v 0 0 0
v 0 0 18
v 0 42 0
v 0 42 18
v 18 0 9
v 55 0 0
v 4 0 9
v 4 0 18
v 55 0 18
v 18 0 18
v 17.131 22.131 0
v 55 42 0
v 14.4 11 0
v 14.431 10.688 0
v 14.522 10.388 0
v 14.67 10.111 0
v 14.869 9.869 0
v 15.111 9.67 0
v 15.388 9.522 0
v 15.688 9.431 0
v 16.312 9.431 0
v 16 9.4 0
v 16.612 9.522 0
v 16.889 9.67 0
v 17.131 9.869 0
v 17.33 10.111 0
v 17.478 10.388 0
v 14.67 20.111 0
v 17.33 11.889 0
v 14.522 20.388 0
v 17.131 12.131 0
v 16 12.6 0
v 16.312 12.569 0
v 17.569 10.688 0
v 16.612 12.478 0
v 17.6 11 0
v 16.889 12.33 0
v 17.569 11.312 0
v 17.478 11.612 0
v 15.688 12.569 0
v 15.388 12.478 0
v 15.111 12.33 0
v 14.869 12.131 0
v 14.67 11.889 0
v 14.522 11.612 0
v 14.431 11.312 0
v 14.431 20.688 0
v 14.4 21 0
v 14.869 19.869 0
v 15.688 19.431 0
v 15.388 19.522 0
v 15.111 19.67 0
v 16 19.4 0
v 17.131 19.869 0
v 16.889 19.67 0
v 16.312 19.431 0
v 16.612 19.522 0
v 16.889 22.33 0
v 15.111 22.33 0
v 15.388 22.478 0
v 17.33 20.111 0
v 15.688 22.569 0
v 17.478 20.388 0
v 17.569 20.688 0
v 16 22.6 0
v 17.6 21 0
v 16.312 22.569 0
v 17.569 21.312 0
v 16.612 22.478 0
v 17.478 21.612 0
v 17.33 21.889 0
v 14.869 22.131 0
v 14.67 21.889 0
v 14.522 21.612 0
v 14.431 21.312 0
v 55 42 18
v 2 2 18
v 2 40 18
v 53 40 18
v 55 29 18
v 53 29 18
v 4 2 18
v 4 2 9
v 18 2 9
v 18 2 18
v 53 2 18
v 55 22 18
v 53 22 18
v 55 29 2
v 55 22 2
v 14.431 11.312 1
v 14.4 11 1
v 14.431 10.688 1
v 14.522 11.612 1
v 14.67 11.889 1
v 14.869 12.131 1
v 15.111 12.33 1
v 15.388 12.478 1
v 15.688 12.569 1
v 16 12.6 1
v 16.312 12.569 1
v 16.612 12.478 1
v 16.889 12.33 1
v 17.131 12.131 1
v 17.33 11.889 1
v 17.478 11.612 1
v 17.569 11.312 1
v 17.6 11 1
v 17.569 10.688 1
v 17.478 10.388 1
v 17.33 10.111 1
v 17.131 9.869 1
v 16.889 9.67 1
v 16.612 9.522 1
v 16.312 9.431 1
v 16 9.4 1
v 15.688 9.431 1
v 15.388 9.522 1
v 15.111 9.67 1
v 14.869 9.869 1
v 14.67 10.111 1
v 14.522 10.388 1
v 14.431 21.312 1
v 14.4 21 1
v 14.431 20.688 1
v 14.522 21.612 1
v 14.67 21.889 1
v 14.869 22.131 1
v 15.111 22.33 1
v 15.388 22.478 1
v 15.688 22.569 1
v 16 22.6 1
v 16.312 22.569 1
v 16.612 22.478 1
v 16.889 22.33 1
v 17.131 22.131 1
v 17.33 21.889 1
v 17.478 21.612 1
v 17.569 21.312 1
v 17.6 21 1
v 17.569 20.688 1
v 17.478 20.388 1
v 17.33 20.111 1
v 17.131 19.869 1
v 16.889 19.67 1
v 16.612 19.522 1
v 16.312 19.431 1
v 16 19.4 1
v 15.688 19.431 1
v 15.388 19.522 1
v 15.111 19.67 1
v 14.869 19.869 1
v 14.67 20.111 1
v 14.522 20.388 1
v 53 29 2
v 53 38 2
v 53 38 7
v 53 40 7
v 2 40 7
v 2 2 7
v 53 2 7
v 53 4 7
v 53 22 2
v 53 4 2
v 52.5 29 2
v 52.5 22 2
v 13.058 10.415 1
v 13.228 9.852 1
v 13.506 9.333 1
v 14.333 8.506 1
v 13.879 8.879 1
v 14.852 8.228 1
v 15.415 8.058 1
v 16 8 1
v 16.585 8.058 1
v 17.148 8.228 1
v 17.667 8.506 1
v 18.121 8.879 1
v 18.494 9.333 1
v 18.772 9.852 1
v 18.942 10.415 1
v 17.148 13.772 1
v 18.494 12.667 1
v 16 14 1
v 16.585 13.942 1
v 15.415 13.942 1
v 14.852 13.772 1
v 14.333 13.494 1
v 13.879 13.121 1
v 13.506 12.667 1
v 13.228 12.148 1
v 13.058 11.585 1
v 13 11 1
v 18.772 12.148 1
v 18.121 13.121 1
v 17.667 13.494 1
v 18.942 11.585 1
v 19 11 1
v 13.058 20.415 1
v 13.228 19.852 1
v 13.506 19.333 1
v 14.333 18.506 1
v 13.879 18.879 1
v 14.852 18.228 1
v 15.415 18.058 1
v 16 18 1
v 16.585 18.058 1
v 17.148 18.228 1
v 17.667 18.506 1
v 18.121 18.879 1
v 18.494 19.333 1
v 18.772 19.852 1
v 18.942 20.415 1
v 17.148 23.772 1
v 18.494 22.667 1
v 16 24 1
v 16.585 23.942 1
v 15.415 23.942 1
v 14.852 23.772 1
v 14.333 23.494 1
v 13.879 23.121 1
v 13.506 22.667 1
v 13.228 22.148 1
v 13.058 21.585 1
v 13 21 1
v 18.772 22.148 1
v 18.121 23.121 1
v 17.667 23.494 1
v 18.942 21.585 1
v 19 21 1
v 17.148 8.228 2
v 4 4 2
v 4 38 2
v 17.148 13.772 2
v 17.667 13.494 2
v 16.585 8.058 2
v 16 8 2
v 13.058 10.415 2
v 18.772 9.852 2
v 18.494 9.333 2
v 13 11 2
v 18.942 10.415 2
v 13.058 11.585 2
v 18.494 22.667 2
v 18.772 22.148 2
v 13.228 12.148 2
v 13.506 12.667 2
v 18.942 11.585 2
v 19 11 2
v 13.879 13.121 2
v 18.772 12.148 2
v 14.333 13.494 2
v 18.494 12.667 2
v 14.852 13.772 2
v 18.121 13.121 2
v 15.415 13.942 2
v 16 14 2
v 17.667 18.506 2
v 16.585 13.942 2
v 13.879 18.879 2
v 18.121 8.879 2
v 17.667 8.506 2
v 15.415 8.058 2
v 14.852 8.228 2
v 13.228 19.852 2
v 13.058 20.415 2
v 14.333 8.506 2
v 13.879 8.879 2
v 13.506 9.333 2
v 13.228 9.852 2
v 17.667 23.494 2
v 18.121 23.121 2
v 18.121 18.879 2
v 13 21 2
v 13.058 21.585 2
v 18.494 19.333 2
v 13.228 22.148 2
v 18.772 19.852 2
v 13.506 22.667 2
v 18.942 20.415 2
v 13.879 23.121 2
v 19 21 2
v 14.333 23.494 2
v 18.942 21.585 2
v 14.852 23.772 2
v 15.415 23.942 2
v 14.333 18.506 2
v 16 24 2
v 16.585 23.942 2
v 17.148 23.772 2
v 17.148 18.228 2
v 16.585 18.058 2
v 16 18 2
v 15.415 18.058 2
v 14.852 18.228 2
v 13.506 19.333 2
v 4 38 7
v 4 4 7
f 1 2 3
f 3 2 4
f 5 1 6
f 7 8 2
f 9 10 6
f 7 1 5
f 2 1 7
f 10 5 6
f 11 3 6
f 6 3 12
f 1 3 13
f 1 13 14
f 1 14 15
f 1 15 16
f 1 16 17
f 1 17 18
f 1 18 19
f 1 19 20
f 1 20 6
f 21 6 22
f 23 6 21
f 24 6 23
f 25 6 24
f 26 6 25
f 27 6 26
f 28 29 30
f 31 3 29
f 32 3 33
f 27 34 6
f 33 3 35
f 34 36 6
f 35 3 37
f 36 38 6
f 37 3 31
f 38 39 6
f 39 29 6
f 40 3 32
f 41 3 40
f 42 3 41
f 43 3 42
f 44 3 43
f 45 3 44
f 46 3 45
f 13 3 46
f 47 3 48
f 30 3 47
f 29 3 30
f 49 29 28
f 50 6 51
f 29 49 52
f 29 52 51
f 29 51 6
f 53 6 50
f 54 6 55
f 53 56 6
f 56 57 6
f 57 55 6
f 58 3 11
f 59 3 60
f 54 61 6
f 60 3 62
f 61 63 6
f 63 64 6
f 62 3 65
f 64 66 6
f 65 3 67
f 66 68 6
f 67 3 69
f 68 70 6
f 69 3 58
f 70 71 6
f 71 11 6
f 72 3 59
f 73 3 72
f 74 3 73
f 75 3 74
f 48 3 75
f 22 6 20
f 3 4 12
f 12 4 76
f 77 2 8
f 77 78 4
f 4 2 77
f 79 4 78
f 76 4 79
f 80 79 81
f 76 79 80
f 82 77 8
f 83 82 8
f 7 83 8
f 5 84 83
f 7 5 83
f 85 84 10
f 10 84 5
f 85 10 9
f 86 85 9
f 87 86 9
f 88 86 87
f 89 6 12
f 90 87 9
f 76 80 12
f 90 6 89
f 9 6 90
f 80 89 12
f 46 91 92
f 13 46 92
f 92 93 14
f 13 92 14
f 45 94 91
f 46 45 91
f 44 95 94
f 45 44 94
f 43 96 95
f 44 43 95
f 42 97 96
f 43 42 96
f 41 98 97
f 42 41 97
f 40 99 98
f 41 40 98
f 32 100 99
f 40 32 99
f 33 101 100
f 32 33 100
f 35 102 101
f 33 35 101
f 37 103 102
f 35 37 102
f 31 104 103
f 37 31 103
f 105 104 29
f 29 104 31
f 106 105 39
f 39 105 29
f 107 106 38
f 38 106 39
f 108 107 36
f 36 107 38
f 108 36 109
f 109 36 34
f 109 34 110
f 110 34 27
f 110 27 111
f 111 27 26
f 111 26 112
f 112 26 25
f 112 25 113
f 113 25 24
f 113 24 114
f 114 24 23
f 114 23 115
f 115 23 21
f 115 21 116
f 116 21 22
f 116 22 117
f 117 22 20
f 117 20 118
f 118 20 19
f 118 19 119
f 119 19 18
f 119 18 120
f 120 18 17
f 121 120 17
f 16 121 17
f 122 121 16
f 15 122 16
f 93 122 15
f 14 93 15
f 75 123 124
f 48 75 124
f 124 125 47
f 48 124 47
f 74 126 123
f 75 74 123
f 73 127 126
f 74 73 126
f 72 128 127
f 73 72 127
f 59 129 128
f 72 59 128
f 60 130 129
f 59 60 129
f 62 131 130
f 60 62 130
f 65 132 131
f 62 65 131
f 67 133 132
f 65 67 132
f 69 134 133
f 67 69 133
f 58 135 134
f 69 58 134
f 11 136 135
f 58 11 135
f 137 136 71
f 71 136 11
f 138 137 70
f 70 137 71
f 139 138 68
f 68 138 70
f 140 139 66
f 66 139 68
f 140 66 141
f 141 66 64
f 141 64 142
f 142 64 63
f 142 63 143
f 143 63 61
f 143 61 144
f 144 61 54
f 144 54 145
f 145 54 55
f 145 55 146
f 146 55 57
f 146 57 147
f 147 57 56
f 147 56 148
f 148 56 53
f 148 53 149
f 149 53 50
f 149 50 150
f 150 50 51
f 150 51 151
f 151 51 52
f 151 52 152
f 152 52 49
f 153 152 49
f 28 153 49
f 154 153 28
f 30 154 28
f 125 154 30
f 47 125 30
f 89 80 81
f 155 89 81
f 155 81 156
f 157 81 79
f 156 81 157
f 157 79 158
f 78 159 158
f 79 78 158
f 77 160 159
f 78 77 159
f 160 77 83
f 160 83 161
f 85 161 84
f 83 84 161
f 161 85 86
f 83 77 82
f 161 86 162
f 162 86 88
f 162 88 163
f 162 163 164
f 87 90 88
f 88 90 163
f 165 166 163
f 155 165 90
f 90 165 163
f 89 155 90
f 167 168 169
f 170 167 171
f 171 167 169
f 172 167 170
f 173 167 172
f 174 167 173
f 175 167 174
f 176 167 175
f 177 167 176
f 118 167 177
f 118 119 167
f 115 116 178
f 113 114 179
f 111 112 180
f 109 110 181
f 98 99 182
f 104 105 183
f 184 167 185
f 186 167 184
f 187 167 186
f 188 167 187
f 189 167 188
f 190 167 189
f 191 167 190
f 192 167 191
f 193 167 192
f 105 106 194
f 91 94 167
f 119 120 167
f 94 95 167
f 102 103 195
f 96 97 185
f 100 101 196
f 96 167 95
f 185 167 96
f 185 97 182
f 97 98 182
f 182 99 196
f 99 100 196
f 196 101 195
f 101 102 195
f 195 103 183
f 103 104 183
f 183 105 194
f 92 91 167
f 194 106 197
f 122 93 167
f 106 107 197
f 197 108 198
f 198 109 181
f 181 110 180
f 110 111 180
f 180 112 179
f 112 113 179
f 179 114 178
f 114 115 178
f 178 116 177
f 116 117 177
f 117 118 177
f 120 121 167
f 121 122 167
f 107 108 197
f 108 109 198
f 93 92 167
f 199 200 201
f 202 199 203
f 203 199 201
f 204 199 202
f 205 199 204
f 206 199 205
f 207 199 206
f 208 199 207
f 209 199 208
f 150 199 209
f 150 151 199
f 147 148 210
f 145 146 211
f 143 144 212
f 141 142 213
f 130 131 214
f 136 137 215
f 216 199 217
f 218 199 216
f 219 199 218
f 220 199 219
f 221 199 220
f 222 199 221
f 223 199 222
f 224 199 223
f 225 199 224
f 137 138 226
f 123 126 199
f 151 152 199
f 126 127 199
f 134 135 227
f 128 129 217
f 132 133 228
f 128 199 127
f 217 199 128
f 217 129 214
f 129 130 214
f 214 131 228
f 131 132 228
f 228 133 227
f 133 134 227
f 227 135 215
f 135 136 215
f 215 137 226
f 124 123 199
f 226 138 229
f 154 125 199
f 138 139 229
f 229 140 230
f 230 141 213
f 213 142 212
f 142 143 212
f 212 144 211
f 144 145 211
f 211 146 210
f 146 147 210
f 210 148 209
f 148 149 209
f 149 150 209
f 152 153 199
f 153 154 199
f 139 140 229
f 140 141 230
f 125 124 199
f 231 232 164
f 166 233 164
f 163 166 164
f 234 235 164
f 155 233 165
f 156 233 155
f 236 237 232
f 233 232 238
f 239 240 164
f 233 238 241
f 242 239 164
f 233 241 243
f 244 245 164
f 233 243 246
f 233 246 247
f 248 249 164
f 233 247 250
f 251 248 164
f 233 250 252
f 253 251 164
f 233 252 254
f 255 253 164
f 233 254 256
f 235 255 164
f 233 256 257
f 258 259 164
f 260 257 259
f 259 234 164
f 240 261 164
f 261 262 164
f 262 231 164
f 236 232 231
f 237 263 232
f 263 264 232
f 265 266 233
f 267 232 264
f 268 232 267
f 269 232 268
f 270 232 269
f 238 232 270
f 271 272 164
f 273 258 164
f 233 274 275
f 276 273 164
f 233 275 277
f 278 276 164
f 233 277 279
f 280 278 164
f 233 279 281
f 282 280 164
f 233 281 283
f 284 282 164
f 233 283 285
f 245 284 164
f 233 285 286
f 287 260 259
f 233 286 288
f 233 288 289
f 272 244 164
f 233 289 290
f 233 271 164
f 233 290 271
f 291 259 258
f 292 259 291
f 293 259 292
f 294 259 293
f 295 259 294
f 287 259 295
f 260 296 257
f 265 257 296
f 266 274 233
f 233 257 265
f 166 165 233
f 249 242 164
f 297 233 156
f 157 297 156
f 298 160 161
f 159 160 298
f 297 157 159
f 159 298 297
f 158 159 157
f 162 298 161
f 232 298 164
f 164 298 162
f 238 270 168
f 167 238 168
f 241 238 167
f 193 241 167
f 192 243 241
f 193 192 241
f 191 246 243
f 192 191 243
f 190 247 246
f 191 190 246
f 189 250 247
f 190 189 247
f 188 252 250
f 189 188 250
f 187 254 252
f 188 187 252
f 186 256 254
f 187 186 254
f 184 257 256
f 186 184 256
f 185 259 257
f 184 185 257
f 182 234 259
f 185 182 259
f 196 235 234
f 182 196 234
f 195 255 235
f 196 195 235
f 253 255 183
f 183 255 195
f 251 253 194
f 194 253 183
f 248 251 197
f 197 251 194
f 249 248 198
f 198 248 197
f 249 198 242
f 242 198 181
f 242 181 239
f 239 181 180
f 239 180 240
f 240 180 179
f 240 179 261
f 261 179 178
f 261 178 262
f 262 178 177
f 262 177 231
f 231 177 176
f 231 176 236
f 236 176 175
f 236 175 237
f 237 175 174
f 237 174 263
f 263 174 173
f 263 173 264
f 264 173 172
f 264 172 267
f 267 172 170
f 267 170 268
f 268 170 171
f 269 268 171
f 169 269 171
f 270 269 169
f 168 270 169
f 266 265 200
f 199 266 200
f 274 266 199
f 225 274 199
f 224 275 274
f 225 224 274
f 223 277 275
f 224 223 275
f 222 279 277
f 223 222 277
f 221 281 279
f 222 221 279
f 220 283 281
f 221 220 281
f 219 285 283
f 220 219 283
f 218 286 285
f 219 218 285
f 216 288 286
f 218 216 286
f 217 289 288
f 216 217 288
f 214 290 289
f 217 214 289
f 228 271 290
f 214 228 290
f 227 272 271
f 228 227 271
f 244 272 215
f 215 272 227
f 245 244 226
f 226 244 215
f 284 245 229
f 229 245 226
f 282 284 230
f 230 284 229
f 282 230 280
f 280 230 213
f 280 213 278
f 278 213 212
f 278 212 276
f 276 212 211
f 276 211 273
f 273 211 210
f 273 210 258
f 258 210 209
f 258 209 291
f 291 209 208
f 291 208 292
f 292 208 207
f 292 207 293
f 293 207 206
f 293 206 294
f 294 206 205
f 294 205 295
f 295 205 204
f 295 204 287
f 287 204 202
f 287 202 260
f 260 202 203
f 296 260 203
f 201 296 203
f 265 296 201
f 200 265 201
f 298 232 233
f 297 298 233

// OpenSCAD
x=51;
y=38;
w=2;
h=16;

$fn=32;

difference() {
  union() {
    cube([x+2*w,y+2*w,w]);
    cube([w,y+2*w,h+w]);
    cube([w*2,y+2*w,7]);
    
    cube([x+2*w,w,h+w]);
    cube([x+2*w,w*2,7]);

    translate([0,y+w,0]) cube([x+2*w,w,h+w]);
    translate([0,y,0]) cube([x+2*w,w*2,7]);
    
    translate([x+w,0,0]) cube([w,y+2*w,h+w]);
  }
  translate([4,-0.5,9]) cube([14,3,13]);
  translate([x+w-0.5,20+w,2]) cube([3,7,17]);

  translate([16,y/2+w,-0.5]) cylinder(3,1.6,1.6); //screw hole
  translate([16,y/2+w,1]) cylinder(3,3,3); // screw hole

  translate([16,(y/2+w)-10,-0.5]) cylinder(3,1.6,1.6); //screw hole
  translate([16,(y/2+w)-10,1]) cylinder(3,3,3); // screw hole

}
